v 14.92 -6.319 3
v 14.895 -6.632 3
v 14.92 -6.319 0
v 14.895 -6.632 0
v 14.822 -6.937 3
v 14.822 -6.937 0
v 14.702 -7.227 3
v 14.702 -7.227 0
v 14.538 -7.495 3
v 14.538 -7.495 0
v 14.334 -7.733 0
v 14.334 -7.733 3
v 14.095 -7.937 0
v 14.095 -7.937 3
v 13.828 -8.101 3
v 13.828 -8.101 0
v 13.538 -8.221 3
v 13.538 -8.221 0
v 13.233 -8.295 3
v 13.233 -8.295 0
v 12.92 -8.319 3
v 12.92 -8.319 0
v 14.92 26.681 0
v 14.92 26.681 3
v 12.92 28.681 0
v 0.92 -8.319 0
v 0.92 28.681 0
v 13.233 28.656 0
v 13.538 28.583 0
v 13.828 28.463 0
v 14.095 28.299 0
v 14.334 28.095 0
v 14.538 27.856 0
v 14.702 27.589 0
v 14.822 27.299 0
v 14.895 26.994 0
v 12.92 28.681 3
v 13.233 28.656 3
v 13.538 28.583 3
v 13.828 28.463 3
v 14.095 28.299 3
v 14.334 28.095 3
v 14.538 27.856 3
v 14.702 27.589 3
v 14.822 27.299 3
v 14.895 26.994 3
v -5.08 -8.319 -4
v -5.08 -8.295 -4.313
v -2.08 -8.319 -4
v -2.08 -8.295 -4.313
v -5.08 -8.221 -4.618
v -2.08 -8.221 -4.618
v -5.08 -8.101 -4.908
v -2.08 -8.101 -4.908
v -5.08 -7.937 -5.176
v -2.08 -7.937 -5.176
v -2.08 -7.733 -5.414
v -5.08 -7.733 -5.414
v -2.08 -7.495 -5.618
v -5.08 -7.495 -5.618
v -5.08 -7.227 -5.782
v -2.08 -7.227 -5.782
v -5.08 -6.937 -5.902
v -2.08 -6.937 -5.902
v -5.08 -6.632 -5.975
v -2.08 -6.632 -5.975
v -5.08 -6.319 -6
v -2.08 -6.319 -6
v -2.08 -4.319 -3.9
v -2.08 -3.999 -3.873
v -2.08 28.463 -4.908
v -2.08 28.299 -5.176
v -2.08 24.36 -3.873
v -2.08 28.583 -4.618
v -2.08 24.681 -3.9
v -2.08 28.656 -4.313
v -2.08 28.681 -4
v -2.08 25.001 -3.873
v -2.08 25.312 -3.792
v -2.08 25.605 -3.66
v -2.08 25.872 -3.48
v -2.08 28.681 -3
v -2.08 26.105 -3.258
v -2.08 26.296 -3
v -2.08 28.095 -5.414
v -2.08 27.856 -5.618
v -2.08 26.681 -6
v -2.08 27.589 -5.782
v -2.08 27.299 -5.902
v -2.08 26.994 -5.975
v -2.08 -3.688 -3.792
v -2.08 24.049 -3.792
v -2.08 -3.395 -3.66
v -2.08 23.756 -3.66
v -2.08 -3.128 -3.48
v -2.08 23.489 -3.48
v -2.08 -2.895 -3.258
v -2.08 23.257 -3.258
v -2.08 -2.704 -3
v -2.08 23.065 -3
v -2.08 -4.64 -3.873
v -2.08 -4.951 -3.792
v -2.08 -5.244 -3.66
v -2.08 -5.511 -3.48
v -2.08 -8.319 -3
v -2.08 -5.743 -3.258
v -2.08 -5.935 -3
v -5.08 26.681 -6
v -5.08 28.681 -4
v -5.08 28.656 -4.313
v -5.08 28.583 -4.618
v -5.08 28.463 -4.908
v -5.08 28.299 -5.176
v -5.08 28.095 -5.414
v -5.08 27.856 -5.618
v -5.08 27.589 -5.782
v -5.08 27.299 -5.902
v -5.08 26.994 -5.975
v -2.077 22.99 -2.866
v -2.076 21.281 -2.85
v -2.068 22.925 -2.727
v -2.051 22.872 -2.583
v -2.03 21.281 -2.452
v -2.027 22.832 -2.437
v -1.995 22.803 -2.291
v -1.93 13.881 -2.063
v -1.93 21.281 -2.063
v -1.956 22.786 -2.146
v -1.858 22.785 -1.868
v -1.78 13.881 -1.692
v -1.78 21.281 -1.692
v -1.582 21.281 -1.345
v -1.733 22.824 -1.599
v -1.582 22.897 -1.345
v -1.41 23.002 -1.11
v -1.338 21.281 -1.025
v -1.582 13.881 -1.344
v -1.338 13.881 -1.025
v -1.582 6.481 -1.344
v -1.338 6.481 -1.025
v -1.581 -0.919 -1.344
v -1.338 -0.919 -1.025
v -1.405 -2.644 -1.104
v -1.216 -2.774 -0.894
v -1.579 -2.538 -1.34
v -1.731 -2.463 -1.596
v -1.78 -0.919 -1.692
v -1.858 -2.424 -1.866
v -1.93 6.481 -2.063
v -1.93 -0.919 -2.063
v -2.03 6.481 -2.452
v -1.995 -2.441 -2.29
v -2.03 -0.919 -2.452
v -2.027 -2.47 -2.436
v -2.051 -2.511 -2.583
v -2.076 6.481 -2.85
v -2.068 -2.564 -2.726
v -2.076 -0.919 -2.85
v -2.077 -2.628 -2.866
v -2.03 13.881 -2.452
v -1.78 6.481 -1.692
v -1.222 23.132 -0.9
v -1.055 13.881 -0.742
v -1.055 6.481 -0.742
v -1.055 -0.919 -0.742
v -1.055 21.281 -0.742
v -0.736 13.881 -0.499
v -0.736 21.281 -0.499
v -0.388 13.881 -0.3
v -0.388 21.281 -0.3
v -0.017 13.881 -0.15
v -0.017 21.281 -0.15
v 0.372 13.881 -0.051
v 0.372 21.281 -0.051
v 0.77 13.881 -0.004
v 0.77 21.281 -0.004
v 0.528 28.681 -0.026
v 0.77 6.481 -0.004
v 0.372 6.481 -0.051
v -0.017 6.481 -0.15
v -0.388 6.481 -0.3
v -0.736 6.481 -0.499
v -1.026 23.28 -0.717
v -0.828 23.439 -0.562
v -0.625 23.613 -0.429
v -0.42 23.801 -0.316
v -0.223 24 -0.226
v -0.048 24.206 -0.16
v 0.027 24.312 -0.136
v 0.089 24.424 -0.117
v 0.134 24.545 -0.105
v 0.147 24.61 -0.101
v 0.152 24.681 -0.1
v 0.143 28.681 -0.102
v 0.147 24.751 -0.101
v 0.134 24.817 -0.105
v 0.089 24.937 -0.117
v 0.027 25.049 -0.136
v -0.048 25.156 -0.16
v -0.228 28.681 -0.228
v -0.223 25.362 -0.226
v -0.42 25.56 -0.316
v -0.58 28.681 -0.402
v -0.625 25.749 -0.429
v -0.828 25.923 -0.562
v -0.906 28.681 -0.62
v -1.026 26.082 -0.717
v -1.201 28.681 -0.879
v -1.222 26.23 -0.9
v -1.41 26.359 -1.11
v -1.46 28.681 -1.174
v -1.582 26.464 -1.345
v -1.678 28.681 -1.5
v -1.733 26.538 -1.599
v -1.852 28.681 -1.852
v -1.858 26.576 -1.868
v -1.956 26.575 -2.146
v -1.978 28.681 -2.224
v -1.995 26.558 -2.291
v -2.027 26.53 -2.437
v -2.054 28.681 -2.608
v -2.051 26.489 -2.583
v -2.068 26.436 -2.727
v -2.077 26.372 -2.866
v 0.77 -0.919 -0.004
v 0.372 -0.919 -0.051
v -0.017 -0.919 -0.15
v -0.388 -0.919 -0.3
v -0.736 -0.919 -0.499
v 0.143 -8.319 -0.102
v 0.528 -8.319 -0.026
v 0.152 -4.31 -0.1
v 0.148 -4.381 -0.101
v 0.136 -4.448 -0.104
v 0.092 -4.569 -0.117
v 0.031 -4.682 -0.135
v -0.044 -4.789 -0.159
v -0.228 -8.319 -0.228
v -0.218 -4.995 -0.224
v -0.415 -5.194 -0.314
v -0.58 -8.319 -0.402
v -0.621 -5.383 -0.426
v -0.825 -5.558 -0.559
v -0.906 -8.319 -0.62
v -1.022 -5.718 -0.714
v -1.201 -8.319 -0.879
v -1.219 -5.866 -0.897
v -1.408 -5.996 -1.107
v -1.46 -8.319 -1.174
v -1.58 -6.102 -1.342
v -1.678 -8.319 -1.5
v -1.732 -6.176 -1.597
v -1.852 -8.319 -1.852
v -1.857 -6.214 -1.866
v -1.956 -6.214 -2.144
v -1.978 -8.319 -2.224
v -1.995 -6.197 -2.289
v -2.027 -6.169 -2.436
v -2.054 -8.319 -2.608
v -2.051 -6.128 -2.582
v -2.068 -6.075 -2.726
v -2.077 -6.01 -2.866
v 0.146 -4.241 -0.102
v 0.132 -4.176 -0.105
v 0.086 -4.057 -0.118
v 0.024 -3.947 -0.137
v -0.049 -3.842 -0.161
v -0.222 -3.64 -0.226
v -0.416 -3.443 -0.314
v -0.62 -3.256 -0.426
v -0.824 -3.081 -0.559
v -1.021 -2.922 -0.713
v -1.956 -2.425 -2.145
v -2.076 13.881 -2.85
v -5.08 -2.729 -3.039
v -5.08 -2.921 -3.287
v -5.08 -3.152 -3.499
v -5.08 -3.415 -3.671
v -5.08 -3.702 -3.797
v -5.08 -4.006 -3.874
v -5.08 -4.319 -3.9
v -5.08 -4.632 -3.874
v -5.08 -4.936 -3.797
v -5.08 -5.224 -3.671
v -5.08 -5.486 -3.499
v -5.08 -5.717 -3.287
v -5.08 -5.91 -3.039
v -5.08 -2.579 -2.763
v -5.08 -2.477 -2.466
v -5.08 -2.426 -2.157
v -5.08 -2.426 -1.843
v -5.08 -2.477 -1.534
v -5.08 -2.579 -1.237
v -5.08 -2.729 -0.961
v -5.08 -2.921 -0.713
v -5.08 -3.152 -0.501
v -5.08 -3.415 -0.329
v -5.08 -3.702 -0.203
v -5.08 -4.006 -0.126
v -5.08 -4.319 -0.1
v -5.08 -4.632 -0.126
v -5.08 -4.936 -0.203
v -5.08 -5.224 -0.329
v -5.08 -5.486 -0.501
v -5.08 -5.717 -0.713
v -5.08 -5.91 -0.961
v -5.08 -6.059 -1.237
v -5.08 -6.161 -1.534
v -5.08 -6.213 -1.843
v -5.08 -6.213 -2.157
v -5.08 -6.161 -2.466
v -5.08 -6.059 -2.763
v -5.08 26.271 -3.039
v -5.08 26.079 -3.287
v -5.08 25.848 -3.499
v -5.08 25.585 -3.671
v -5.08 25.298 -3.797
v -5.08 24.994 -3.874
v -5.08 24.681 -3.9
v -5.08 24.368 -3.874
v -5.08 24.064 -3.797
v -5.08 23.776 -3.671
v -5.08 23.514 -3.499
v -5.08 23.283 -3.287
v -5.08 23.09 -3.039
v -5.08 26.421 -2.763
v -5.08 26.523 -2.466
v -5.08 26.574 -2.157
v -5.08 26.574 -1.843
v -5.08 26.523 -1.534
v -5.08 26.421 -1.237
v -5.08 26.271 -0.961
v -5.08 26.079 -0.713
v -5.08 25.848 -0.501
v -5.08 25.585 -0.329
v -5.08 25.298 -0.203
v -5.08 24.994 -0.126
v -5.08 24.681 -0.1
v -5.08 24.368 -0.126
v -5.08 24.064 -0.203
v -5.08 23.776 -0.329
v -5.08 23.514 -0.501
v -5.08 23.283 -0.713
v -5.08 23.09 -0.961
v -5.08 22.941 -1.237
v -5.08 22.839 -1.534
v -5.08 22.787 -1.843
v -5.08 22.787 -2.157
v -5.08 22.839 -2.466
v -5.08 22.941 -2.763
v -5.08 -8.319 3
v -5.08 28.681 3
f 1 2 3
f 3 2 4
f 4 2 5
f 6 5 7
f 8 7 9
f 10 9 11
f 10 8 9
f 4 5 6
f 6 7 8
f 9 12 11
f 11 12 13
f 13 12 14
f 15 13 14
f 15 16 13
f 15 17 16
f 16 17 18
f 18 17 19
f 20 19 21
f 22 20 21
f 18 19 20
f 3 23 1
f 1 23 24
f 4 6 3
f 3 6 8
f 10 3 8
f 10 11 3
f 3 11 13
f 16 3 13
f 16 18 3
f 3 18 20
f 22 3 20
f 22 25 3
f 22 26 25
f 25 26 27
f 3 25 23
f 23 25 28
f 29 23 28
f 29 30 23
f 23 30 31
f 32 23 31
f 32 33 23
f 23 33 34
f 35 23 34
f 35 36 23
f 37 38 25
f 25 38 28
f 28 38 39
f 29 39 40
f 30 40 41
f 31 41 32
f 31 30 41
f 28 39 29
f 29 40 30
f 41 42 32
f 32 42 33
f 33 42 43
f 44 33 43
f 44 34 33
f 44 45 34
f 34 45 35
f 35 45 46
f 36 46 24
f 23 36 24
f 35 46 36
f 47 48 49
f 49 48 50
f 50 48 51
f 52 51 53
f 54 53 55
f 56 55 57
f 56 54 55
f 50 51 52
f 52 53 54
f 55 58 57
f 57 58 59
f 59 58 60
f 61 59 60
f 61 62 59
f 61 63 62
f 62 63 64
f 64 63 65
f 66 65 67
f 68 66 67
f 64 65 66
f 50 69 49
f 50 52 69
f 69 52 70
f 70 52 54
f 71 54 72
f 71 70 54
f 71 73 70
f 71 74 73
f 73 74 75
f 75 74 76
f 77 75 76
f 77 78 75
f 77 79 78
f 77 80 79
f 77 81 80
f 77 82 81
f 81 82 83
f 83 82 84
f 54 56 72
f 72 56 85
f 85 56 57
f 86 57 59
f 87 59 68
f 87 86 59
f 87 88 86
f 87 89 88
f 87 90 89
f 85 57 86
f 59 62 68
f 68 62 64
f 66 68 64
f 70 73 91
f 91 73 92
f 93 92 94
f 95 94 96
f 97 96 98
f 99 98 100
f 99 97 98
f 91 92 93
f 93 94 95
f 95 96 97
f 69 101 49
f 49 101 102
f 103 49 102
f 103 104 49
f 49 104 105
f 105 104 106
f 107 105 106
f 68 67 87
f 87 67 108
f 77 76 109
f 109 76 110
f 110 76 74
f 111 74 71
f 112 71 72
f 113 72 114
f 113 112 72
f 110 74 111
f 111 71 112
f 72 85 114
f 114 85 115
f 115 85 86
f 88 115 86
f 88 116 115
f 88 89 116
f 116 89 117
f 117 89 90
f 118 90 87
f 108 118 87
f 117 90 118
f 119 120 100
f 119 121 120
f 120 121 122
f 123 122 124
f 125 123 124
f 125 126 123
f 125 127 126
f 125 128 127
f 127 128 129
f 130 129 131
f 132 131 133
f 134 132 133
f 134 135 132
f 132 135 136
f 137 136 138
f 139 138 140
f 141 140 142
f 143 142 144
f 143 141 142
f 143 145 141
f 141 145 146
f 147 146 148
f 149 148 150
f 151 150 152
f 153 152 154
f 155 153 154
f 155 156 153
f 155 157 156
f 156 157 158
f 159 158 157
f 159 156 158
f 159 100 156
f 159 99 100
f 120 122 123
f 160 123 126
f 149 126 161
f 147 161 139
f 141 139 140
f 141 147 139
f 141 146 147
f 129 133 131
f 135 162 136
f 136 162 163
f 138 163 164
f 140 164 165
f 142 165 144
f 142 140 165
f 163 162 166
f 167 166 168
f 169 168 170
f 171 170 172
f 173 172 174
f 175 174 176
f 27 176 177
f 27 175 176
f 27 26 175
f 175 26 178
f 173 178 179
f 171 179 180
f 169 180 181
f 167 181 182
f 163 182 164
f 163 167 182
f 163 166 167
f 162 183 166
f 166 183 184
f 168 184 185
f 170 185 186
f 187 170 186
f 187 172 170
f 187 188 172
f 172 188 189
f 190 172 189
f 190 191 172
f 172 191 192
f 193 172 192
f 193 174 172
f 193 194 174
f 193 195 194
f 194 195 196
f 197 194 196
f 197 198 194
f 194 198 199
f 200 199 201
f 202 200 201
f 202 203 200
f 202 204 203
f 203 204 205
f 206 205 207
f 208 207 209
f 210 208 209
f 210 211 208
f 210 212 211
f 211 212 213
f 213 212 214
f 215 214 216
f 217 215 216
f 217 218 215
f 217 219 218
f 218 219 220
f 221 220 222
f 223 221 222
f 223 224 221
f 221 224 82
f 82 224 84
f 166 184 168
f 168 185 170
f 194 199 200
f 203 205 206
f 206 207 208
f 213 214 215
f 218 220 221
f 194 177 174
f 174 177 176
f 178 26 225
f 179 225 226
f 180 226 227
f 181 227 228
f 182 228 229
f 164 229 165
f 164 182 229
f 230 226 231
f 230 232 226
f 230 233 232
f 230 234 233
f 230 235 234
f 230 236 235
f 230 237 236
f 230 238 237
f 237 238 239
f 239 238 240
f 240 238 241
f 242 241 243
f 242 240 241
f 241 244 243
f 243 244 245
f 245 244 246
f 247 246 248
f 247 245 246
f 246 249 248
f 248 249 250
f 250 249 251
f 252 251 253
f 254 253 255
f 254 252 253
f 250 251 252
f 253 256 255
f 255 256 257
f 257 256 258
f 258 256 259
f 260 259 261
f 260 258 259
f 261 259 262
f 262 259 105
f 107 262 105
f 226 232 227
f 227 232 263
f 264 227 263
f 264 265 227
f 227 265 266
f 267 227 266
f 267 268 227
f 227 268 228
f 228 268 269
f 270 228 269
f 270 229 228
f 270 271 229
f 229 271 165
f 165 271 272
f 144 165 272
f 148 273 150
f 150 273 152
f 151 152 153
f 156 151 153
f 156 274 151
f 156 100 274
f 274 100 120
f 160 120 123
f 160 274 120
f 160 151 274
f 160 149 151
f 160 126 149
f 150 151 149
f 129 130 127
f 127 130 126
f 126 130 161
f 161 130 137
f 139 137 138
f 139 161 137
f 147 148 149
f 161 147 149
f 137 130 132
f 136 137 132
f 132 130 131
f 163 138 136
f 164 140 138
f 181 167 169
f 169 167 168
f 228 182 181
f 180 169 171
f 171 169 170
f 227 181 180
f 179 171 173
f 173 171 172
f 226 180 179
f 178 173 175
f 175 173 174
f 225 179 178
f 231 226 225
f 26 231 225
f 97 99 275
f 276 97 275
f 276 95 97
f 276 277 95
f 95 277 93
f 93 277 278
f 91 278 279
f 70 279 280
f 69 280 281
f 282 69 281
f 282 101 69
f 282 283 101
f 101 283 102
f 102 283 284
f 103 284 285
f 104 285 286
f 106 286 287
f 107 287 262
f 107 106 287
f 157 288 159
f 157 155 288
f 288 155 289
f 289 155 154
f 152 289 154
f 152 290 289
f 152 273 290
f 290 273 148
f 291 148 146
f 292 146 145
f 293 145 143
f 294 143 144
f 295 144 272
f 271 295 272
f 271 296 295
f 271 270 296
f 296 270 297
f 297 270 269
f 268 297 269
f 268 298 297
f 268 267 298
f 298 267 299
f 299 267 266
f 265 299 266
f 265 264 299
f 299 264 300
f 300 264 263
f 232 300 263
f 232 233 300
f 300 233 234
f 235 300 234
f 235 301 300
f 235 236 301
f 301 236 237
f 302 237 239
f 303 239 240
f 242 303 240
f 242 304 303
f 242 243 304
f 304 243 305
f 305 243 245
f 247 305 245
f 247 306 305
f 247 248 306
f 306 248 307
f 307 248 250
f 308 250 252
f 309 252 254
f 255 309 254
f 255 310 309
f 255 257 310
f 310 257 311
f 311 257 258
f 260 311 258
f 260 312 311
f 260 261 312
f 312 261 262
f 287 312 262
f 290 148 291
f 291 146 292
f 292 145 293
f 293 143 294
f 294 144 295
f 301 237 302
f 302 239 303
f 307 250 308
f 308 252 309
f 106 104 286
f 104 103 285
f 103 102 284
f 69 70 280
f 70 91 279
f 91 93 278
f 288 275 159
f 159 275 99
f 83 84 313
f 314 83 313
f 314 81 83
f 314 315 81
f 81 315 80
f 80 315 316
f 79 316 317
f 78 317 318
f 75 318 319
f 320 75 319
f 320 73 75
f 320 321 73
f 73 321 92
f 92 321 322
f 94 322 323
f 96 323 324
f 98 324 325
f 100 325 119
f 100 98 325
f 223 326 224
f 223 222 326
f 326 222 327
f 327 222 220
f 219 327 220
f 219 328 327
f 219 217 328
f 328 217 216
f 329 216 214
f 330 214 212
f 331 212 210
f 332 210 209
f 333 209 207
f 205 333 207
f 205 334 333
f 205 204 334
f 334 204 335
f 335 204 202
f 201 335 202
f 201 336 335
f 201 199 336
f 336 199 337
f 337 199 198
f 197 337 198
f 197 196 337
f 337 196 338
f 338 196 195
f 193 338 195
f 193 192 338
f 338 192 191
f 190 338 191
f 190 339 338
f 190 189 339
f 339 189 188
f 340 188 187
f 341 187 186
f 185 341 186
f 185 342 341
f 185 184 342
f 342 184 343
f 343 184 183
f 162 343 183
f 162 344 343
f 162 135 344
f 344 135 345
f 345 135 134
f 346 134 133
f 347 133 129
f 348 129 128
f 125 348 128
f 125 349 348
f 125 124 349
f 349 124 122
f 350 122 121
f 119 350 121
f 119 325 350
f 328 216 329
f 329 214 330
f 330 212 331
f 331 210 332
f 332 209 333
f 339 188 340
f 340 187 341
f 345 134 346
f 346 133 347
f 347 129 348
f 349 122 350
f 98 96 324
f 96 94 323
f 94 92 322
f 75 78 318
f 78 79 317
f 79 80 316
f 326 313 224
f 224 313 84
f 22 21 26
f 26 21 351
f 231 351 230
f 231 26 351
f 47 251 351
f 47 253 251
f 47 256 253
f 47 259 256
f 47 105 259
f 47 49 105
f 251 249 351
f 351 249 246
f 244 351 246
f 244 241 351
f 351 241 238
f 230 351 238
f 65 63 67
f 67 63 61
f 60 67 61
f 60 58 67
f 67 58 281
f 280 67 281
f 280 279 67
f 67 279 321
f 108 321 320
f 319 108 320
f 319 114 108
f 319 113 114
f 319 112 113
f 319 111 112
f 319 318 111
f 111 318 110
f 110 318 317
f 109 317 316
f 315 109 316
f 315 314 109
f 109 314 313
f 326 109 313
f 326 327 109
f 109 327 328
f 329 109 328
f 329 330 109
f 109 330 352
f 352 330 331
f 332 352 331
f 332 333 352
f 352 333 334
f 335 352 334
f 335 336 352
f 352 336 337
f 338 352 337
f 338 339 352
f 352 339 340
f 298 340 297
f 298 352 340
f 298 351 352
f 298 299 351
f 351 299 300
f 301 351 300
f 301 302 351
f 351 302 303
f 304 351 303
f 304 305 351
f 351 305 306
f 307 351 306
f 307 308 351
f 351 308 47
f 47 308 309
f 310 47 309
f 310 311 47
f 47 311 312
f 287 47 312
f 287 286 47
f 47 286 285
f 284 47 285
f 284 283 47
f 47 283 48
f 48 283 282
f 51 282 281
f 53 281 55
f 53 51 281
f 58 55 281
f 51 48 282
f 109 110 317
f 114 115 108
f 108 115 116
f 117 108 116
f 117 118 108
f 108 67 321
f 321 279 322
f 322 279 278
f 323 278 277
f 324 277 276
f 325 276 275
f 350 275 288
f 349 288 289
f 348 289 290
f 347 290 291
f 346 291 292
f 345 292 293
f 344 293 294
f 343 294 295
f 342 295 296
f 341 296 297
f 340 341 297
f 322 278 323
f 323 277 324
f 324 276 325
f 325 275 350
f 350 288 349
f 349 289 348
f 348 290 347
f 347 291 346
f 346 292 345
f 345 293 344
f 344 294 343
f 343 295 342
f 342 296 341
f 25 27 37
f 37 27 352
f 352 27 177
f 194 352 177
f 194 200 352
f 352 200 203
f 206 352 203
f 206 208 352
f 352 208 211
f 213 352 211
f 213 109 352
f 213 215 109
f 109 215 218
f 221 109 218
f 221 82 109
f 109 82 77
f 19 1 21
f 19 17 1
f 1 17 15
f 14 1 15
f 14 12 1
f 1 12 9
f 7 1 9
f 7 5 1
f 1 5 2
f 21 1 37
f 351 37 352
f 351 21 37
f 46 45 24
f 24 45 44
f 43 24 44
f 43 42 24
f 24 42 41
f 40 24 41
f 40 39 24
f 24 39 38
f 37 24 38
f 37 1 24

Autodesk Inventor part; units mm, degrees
ref_plane "YZ Plane" through (0, 0, 0) normal (1, 0, 0) x (0, 1, 0)
ref_plane "XZ Plane" through (0, 0, 0) normal (0, 1, 0) x (-1, 0, 0)
ref_plane "XY Plane" through (0, 0, 0) normal (0, 0, 1) x (1, 0, 0)
sketch "Sketch1" plane through (0, 0, 0) normal (0, 0, 1) x (1, 0, 0)
  line L0 (-5.0801, 28.6808) -> (14.9199, 28.6808)
  line L1 (14.9199, 28.6808) -> (14.9199, -8.3192)
  line L2 (14.9199, -8.3192) -> (-5.0801, -8.3192)
  line L3 (-5.0801, -8.3192) -> (-5.0801, 28.6808)
  line L4 (-5.0801, 28.6808) -> (-2.0801, 28.6808)
  line L5 (-2.0801, 28.6808) -> (-2.0801, -8.3192)
  line L6 (-2.0801, -8.3192) -> (-5.0801, -8.3192)
  line L7 (-5.0801, -8.3192) -> (-5.0801, 28.6808)
  point P0 (0, 0)
  dimension "d0" = 3
  dimension "d1" = 17
  dimension "d12" = 37
extrude "Extrusion1" add sketch "Sketch1" along normal blind 3
extrude "Extrusion2" add sketch "Sketch1" against normal blind 6 contours L0 L5 L2 L3
sketch "Sketch2" plane through (-5.0801, -8.3192, 3) normal (-1, 0, 0) x (0, 0, 1)
  circle A0 centre (-5, 4) radius 1.9
  circle A1 centre (-5, 33) radius 1.9
  line L0 (-3, 0) -> (-3, 37) projected
  line L1 (-9, 0) -> (0, 0) projected
  line L2 (-9, 37) -> (0, 37) projected
  line L3 (-9, 0) -> (-9, 37) projected
  line L4 (0, 37) -> (0, 0) projected
  point P0 (-3, 8.3192)
  dimension "d6" = 3.8
  dimension "d7" = 3.8
  dimension "d10" = 4
  dimension "d11" = 4
  dimension "d17" = 4
  dimension "d18" = 4
  dimension "d19" = 5
extrude "Extrusion3" cut sketch "Sketch2" against normal blind 6 contours A0 | A1
fillet "Fillet1" radius 3 1 edges at (-2.0801, 10.1808, 0)
fillet "Fillet2" radius 2 4 edges at (-3.5801, 28.6808, -6) (-3.5801, -8.3192, -6) (14.9199, 28.6808, 1.5) (14.9199, -8.3192, 1.5)
sketch "Sketch3" plane through (0, 0, 3) normal (0, 0, 1) x (1, 0, 0)
  point P0 (0, 0)
properties part number "psu side brace"
